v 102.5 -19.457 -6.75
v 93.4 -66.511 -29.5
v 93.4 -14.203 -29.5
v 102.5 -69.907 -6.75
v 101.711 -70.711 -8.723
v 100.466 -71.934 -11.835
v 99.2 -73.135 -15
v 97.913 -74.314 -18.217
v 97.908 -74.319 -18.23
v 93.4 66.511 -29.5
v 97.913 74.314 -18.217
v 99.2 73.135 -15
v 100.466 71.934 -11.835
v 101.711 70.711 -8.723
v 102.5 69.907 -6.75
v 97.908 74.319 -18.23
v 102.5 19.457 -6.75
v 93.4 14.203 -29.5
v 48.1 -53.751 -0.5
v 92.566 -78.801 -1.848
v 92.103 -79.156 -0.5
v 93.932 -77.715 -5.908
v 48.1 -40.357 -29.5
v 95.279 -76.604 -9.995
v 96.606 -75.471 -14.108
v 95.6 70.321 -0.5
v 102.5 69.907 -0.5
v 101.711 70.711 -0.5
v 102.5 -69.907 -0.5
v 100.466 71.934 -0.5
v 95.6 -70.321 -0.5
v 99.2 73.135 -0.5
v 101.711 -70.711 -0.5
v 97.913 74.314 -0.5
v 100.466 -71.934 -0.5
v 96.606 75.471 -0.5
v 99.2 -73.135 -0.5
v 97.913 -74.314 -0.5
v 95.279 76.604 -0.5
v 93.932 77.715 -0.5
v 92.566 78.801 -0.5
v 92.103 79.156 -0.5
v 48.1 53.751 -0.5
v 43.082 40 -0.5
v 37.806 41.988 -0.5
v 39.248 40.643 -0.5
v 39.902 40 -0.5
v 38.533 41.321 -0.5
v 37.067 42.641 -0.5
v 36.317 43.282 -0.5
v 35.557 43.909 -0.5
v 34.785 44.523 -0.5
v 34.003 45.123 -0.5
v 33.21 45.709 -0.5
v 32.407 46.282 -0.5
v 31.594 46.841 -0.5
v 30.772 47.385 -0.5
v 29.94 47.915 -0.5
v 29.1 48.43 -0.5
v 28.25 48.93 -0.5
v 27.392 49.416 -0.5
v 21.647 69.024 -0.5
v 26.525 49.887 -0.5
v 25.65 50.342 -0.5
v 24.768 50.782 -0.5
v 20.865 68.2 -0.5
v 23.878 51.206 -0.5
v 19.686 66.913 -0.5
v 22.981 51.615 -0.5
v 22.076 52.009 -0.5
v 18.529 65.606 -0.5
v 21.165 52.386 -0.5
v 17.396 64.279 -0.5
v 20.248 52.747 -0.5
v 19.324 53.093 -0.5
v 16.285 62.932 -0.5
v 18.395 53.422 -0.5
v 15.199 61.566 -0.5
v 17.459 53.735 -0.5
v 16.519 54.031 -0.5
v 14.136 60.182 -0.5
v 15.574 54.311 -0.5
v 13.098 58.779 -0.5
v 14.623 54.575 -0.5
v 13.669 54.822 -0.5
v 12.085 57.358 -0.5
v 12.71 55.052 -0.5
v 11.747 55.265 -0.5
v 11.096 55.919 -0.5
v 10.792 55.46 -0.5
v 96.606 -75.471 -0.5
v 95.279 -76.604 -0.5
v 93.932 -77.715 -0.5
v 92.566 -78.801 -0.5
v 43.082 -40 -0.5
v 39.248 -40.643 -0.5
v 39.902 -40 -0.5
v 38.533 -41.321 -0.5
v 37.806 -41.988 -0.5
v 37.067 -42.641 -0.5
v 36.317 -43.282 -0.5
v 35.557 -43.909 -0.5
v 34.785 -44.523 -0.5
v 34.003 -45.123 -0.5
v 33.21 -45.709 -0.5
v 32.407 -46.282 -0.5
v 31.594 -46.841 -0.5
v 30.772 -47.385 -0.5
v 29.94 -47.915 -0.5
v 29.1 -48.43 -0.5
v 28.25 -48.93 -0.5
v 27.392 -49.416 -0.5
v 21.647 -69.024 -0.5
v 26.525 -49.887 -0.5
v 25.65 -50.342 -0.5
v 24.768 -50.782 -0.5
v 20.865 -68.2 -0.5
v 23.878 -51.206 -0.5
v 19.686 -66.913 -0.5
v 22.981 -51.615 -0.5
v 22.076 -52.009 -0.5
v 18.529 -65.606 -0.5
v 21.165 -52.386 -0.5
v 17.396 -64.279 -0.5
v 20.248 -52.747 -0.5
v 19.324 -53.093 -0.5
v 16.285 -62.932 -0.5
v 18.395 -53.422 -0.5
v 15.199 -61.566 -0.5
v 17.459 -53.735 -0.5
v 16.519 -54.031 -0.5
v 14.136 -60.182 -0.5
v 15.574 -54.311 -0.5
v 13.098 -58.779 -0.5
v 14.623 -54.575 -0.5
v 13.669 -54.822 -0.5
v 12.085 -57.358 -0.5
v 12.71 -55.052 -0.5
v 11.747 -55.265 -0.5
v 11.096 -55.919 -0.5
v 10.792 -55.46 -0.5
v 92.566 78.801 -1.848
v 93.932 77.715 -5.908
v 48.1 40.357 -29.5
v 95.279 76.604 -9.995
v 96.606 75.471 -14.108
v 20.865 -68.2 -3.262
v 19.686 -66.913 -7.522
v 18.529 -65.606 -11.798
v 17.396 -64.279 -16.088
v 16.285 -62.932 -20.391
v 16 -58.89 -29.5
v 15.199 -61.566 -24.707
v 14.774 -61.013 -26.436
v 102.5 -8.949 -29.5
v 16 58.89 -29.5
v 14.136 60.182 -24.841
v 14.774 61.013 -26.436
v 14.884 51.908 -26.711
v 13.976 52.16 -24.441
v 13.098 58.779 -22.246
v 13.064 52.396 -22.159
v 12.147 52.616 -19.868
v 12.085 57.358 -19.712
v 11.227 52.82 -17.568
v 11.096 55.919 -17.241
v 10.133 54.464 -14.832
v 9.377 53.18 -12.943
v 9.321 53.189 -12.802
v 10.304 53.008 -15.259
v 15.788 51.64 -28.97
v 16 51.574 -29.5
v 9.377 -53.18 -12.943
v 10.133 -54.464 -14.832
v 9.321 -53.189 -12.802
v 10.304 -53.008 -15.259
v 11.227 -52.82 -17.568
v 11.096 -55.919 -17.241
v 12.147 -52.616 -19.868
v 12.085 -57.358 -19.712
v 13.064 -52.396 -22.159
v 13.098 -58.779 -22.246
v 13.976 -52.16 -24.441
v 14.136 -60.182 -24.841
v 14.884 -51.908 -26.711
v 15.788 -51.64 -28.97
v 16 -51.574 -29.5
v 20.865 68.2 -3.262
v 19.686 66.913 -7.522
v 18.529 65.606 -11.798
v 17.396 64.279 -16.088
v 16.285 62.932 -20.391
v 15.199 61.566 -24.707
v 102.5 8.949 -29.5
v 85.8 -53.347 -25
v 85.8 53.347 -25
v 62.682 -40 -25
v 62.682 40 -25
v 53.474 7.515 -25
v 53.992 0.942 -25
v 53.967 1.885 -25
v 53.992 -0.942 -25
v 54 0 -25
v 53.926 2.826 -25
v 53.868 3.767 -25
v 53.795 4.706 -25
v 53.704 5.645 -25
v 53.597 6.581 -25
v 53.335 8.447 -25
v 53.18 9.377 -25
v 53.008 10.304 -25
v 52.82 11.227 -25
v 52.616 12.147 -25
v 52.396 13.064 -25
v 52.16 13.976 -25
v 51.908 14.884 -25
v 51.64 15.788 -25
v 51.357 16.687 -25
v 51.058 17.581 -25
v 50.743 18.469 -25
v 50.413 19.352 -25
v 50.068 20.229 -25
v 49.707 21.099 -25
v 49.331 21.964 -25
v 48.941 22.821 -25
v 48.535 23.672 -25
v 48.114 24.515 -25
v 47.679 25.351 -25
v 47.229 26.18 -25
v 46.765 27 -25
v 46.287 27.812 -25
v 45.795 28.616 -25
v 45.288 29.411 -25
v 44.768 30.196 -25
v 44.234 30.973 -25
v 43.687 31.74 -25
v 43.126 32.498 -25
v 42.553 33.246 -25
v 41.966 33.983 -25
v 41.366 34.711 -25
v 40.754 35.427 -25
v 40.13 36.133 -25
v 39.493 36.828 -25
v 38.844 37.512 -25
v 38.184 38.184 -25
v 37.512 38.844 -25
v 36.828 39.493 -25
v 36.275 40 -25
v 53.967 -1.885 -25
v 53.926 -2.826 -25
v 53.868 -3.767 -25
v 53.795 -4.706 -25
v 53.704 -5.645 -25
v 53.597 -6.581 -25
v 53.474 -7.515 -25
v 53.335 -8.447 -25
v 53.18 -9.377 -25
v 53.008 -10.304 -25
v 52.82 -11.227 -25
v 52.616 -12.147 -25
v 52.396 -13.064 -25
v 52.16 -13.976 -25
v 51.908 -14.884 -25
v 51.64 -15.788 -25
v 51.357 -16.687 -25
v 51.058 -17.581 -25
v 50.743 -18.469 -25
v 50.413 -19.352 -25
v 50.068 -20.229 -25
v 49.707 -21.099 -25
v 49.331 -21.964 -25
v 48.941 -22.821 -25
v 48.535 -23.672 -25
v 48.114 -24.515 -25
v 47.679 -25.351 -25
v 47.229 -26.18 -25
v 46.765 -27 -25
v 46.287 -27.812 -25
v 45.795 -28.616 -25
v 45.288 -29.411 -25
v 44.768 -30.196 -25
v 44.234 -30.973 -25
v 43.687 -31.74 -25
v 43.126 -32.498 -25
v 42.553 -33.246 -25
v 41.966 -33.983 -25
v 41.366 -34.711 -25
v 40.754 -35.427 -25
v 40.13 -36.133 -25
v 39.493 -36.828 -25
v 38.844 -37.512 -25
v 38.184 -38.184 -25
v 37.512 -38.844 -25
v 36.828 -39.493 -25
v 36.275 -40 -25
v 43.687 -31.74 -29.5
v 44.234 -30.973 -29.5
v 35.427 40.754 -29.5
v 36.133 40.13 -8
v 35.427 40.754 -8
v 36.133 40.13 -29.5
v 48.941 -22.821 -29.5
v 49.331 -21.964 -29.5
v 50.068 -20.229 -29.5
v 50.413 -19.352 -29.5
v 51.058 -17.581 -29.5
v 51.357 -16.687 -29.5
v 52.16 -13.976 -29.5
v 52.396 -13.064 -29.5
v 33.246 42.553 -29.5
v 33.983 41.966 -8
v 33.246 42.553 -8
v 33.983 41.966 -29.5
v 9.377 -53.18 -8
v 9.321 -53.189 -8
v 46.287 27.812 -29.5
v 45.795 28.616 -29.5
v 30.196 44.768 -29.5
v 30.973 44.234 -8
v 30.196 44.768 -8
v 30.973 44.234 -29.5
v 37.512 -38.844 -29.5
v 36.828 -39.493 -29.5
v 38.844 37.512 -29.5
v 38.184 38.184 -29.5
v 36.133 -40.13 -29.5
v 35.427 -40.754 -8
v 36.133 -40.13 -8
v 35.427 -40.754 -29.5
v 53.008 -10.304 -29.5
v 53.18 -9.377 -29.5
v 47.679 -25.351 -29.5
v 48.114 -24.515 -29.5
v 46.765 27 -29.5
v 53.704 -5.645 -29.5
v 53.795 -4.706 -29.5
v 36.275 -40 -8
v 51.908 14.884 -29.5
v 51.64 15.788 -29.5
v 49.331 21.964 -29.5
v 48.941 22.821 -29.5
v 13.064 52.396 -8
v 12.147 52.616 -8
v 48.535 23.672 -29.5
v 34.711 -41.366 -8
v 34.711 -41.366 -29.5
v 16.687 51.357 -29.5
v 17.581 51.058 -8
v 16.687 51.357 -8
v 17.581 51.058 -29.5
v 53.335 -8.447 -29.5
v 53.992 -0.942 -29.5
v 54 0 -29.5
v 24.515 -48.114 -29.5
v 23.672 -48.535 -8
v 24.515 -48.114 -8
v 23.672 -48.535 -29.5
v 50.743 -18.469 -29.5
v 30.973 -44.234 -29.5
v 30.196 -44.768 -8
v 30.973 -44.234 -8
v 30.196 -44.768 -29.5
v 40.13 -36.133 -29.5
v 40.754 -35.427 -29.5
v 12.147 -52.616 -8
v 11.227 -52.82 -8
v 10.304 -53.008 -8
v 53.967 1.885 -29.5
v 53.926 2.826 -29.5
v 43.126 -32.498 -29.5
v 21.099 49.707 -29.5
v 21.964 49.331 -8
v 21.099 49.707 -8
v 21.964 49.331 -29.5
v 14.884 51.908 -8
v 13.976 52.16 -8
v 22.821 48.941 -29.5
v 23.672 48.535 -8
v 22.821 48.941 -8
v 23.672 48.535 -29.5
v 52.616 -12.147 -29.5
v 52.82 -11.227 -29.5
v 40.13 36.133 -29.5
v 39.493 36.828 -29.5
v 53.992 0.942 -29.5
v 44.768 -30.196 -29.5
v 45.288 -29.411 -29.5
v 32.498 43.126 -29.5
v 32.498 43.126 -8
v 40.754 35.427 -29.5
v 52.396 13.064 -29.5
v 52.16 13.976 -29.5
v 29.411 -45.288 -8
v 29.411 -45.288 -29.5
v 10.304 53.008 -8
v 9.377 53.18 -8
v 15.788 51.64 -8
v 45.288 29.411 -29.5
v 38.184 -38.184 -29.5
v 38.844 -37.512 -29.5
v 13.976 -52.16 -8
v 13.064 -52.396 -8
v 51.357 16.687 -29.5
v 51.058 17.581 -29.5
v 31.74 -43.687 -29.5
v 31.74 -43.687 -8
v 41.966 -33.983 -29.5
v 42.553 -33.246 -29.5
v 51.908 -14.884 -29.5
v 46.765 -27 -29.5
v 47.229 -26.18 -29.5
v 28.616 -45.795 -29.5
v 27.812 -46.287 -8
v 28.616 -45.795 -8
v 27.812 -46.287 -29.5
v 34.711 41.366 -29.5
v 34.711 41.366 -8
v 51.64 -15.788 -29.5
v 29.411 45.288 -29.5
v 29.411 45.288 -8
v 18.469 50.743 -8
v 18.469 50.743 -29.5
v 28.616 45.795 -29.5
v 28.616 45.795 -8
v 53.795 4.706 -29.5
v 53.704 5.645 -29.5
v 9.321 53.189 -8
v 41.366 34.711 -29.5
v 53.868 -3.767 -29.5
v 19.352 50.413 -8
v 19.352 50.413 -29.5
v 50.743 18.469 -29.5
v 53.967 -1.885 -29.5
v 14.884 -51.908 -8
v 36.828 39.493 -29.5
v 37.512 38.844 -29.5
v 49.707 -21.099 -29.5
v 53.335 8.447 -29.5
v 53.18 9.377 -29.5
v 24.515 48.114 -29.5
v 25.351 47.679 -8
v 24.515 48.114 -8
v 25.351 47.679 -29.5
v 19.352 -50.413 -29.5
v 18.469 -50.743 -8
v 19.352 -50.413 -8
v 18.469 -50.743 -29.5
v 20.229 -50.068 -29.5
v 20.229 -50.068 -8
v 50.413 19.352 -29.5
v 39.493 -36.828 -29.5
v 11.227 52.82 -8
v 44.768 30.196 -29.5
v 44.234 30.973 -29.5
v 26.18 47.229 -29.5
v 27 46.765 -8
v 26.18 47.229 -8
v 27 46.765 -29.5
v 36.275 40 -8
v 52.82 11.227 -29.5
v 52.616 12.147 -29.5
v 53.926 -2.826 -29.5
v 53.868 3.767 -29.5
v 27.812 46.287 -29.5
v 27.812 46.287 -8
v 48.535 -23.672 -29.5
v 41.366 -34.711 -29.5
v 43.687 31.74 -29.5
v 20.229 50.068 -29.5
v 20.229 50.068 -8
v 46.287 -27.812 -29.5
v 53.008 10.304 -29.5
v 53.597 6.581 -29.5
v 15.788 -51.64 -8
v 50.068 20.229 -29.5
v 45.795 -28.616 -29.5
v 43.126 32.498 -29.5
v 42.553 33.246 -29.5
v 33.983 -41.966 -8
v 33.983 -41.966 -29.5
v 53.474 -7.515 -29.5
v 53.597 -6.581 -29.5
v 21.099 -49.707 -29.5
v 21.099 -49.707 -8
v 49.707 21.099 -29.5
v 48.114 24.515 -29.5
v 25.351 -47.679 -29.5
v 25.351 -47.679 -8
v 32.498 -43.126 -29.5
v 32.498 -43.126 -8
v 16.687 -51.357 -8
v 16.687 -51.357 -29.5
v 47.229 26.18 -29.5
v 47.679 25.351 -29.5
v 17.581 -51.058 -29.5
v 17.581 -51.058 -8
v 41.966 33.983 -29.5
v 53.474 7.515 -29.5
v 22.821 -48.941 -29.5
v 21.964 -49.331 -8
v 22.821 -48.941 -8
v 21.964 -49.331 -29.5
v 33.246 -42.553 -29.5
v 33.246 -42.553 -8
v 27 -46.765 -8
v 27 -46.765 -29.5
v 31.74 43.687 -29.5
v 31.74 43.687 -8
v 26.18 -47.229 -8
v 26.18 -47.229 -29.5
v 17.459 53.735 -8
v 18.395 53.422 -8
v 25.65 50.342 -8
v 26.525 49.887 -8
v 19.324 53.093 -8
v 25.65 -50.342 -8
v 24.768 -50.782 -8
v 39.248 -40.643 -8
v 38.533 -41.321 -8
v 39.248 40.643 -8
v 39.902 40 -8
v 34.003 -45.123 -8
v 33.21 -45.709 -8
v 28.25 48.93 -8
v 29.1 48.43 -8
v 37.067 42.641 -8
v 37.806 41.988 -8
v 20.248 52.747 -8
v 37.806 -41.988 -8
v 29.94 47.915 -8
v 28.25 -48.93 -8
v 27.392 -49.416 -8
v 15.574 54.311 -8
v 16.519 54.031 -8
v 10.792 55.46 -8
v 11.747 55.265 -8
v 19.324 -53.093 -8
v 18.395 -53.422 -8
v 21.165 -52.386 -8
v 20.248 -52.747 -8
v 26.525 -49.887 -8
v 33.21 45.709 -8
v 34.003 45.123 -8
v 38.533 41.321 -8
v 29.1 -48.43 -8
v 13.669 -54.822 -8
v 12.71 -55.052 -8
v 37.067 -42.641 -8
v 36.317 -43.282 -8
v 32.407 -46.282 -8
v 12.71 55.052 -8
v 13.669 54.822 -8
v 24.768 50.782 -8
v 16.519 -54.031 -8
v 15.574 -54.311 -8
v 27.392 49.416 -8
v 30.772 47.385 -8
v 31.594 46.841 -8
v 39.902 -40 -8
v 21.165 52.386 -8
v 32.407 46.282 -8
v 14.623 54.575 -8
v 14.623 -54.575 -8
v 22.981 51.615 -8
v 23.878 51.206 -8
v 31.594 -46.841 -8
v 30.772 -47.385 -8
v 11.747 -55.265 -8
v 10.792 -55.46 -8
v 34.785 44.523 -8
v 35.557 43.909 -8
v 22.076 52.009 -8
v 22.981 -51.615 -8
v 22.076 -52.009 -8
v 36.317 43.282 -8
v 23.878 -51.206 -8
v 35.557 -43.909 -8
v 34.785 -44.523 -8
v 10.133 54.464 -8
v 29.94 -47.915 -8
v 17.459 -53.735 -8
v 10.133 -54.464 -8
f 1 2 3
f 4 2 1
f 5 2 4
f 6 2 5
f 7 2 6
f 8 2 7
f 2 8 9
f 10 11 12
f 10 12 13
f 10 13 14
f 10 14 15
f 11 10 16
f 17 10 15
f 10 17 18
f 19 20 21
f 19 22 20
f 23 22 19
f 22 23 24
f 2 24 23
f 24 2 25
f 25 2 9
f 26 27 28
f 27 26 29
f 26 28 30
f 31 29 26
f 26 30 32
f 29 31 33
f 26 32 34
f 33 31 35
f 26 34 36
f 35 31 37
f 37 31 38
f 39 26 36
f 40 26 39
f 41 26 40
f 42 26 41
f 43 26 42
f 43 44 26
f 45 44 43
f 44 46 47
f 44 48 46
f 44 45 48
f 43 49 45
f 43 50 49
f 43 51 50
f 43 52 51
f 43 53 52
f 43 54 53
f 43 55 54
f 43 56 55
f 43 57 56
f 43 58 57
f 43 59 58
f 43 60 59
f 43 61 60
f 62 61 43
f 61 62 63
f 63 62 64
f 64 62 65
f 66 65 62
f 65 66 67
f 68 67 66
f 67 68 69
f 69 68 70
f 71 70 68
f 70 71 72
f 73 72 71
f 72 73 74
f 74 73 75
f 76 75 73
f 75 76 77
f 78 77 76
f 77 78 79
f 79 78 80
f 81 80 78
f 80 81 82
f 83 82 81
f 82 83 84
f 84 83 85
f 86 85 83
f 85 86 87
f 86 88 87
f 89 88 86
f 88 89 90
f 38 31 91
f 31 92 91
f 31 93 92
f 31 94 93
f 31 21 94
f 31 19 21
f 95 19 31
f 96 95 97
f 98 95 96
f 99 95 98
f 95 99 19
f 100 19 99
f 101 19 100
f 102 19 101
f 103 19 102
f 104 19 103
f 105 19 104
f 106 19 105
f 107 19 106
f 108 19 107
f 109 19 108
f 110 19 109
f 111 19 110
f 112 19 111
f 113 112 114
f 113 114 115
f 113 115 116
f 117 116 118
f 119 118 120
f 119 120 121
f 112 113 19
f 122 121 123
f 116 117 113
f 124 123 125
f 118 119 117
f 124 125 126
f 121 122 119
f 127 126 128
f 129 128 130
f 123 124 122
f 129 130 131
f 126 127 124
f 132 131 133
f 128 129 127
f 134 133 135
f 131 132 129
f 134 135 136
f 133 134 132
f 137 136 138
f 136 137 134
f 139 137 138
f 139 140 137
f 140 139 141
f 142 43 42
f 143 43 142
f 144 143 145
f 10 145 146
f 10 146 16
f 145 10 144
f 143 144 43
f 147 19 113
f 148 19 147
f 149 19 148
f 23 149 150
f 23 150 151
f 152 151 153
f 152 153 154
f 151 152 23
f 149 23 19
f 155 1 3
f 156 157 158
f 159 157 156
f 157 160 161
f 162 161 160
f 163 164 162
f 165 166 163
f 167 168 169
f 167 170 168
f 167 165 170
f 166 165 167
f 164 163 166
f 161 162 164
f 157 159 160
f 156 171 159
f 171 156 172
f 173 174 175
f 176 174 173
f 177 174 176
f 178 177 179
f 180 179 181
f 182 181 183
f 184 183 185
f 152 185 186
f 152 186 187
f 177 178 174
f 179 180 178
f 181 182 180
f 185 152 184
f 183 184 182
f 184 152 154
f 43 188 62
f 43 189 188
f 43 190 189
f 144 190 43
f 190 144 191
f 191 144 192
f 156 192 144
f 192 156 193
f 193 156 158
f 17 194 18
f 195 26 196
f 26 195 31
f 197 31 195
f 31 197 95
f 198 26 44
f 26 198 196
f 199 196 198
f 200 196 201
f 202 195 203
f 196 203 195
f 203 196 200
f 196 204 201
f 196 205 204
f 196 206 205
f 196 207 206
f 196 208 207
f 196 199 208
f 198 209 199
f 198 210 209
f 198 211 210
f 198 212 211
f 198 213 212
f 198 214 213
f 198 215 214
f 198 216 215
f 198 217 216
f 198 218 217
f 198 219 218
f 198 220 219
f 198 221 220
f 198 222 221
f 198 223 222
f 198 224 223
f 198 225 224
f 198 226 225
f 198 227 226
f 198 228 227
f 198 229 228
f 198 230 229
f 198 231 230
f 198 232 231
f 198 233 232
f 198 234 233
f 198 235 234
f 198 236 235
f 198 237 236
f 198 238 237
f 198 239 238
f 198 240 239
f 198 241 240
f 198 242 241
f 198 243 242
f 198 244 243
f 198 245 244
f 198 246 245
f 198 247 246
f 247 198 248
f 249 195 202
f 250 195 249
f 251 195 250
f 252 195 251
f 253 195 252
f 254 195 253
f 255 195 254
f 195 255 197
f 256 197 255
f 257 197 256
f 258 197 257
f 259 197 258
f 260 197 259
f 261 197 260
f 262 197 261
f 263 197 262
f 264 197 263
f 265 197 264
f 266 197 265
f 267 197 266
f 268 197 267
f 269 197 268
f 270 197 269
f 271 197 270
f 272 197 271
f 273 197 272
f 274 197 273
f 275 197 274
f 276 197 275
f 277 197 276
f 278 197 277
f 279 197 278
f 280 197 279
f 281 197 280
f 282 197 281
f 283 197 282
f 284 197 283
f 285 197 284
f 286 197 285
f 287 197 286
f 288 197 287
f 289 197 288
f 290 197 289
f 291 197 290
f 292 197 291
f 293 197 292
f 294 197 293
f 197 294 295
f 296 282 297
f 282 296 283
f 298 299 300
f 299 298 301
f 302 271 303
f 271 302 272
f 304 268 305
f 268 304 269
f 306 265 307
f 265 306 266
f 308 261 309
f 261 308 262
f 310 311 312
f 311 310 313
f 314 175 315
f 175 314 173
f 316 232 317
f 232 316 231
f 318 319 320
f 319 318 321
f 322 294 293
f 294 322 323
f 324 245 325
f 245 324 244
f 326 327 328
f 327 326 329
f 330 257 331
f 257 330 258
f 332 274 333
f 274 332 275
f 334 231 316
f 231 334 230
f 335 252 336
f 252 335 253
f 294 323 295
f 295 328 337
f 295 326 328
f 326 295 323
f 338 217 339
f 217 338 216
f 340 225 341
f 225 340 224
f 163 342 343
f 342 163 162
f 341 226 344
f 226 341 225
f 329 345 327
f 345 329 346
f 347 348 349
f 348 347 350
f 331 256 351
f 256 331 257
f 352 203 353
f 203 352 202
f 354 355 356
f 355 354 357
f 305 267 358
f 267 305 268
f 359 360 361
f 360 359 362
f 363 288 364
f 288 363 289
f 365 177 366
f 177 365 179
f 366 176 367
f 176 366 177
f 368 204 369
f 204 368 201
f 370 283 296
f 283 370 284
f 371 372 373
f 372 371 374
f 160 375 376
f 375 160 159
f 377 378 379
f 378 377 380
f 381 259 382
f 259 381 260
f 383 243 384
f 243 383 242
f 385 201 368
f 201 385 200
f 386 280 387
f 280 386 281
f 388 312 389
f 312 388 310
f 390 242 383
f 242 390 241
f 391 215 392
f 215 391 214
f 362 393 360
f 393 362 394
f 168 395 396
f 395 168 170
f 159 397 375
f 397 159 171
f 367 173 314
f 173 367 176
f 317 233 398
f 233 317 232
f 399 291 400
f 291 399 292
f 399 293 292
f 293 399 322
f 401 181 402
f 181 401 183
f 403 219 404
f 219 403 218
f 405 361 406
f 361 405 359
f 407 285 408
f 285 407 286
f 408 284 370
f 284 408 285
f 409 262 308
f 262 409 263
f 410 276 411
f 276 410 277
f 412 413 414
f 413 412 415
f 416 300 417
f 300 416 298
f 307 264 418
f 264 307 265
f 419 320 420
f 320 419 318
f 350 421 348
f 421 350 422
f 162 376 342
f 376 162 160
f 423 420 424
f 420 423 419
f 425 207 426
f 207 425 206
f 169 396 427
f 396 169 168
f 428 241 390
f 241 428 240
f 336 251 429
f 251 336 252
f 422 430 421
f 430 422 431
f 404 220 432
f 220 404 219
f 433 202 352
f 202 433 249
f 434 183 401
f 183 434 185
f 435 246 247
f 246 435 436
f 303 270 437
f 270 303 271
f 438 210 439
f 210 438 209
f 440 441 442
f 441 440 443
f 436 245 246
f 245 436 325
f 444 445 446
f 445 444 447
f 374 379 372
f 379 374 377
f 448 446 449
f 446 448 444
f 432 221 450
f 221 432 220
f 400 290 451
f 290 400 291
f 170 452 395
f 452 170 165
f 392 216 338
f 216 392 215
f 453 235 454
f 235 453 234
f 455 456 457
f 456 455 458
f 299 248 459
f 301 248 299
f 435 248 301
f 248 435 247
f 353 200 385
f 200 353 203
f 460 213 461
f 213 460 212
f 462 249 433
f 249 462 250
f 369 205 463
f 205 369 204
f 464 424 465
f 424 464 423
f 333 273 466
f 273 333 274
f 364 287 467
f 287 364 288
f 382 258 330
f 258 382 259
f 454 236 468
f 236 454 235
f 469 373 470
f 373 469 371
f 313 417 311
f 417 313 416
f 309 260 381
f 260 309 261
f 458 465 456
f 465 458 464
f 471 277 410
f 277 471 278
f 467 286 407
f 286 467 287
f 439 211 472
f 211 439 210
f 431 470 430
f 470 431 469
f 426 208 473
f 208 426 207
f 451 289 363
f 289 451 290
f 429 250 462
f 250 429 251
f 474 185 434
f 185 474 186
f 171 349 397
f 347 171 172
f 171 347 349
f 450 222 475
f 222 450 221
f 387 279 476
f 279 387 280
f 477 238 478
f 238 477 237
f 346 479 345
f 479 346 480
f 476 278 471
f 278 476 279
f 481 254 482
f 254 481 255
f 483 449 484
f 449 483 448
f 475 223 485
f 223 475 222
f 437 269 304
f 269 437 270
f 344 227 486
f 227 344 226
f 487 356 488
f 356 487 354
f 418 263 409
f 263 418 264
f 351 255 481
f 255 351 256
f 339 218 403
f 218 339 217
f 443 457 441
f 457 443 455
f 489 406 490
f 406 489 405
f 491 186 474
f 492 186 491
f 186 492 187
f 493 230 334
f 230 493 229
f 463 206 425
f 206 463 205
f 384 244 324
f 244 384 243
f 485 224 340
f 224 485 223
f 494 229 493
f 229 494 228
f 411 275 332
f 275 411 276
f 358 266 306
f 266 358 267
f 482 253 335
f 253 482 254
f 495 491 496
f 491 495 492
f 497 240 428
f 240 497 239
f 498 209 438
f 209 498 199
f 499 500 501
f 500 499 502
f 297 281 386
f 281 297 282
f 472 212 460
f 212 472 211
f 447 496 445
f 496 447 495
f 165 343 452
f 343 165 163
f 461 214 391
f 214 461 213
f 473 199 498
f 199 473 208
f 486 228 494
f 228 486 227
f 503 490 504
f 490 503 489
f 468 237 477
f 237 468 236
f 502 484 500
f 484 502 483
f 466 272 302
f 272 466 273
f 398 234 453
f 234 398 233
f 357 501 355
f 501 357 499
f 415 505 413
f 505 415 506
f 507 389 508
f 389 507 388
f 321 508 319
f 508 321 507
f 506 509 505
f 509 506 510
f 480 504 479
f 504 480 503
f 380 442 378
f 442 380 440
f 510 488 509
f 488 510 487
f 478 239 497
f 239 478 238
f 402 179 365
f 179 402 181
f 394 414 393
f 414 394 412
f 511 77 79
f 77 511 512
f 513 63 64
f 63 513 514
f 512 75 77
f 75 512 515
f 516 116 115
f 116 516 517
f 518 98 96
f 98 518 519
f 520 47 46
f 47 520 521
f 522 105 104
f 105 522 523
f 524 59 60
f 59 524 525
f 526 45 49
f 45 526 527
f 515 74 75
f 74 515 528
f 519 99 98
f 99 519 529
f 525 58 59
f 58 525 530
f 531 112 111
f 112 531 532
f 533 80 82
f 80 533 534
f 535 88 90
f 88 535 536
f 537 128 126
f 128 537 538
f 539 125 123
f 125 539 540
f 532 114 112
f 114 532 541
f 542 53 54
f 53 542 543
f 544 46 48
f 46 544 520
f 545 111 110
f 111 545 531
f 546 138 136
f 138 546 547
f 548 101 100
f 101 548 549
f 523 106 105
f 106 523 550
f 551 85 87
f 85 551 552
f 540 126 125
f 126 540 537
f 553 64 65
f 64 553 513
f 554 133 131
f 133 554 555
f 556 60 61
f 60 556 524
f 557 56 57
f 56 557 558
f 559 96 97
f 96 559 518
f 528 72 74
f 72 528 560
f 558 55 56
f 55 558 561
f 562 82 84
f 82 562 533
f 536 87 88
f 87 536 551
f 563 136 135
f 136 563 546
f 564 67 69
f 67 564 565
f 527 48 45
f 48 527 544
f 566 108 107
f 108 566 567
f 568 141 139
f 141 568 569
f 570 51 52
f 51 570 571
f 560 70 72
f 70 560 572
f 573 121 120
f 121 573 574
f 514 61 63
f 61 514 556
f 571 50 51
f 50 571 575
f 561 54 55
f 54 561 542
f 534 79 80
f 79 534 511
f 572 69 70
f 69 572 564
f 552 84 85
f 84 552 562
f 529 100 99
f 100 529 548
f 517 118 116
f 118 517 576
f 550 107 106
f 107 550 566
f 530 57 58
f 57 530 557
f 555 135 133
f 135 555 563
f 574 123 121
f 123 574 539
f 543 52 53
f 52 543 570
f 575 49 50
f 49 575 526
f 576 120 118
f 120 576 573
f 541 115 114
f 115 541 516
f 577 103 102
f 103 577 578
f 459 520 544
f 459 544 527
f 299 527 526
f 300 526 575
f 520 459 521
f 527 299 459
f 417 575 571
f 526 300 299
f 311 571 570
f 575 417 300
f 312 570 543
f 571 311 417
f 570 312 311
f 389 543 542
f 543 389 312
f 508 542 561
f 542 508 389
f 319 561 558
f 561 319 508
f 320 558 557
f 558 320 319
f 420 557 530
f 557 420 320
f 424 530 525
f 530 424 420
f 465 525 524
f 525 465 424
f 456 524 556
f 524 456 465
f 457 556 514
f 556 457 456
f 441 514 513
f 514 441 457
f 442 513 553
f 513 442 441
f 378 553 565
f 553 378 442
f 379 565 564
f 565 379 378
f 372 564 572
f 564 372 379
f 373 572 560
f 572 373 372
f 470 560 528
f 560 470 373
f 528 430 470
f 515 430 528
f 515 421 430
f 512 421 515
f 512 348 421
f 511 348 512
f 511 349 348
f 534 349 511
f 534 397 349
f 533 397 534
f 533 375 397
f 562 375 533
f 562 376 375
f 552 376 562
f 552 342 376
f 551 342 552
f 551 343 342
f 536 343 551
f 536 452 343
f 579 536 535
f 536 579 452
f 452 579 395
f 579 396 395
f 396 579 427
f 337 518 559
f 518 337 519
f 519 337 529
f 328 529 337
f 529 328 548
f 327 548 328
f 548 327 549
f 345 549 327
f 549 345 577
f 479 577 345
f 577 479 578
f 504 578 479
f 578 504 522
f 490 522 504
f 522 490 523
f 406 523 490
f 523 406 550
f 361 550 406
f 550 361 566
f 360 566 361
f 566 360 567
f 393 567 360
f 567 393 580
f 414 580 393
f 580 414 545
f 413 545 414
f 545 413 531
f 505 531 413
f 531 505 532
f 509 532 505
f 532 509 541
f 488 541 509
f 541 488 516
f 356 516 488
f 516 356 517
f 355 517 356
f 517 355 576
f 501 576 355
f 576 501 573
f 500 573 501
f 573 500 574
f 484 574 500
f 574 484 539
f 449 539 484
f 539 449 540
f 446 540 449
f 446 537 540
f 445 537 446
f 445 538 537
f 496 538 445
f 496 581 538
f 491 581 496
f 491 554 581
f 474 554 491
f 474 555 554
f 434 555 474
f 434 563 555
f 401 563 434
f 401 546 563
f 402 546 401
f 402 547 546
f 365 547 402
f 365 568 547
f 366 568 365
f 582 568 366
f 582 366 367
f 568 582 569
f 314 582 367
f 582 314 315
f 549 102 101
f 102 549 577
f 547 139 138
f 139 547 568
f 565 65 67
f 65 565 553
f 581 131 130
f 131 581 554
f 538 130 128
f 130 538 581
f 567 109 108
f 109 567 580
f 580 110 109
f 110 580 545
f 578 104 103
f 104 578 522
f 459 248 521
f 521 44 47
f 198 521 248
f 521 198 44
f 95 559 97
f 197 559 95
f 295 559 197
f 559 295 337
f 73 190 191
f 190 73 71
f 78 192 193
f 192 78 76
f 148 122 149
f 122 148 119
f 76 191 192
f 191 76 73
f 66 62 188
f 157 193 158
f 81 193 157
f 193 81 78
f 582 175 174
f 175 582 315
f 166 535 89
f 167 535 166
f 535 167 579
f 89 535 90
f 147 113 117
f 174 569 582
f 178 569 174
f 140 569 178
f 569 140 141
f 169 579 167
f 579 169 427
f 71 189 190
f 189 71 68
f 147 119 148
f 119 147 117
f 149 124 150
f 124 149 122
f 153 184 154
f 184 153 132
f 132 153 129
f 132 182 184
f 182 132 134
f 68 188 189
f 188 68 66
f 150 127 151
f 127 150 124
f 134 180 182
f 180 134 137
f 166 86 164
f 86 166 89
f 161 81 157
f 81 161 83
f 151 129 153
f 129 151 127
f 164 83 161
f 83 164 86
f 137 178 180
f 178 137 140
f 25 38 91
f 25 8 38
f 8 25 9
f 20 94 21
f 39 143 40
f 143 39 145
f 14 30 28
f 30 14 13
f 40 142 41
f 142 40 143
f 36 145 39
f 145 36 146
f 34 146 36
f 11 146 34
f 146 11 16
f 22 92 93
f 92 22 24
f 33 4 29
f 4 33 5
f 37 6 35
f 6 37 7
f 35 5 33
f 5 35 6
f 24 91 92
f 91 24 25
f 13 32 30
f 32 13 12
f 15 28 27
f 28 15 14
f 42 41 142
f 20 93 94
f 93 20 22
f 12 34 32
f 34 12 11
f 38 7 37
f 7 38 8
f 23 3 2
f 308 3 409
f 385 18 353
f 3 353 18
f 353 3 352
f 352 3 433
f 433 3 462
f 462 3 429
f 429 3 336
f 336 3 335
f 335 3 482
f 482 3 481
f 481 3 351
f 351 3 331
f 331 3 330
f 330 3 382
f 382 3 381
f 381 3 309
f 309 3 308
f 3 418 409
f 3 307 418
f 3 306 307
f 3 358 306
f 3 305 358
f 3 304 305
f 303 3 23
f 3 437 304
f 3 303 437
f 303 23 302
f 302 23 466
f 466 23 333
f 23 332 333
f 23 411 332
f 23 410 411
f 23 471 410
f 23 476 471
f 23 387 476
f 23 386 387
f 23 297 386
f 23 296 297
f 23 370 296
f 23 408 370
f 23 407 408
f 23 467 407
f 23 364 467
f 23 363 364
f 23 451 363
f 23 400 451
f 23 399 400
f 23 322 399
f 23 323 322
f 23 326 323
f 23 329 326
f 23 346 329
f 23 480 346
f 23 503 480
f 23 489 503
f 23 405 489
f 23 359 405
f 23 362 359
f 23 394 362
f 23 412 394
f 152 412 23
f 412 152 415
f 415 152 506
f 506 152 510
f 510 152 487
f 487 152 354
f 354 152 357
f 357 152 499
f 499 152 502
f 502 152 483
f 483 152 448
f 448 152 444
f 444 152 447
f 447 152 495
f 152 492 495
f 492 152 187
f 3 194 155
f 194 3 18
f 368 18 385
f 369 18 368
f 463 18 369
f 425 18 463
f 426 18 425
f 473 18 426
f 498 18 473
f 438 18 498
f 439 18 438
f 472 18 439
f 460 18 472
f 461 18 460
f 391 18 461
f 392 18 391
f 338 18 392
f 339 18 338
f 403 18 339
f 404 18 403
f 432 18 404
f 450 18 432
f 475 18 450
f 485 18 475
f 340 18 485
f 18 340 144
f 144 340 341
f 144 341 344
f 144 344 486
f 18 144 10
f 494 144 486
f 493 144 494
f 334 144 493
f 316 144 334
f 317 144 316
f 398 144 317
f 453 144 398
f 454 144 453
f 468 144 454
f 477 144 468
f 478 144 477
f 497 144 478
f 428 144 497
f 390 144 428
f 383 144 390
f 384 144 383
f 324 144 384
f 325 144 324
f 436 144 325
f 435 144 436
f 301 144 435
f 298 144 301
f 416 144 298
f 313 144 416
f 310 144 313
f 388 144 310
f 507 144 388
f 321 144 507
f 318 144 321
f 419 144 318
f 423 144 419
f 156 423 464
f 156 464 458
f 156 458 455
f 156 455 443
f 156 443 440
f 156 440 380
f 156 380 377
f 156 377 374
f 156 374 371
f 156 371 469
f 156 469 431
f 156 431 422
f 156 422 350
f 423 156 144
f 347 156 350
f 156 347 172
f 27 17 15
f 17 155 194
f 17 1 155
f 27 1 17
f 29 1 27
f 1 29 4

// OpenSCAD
$fa = 1;
$fs = 0.4;

rotate([0,180,0])
intersection() {
    difference() {
        union() {
            translate([-55,0,0.5])
                 cylinder(100,100,20,$fn=3);
            translate([-50,0,-10.5])
                rotate([0,0,60])
                 cylinder(100,100,20,$fn=3);
        }
        union() {
            cylinder(h=30,d=108);
            cylinder(h=8,d=113);
            translate([-84,-40,0])
                cube([70,80,25]);
            intersection() {
                translate([-55,0,-23])
                    cylinder(100,100,20,$fn=3);
                translate([-100,-100,0])
                    cube([200,200,25]);
            }
        }
    }
    intersection() {
        translate([-(52.5 + 50),-100,0.5])
            cube([52.5 + 50,200,29]);
        intersection() {
            translate([-94,0,0.5])
                cylinder(h=100, d=200);
            translate([-31,0,0.5])
                cylinder(h=100, d=200);
        }
    }
}
